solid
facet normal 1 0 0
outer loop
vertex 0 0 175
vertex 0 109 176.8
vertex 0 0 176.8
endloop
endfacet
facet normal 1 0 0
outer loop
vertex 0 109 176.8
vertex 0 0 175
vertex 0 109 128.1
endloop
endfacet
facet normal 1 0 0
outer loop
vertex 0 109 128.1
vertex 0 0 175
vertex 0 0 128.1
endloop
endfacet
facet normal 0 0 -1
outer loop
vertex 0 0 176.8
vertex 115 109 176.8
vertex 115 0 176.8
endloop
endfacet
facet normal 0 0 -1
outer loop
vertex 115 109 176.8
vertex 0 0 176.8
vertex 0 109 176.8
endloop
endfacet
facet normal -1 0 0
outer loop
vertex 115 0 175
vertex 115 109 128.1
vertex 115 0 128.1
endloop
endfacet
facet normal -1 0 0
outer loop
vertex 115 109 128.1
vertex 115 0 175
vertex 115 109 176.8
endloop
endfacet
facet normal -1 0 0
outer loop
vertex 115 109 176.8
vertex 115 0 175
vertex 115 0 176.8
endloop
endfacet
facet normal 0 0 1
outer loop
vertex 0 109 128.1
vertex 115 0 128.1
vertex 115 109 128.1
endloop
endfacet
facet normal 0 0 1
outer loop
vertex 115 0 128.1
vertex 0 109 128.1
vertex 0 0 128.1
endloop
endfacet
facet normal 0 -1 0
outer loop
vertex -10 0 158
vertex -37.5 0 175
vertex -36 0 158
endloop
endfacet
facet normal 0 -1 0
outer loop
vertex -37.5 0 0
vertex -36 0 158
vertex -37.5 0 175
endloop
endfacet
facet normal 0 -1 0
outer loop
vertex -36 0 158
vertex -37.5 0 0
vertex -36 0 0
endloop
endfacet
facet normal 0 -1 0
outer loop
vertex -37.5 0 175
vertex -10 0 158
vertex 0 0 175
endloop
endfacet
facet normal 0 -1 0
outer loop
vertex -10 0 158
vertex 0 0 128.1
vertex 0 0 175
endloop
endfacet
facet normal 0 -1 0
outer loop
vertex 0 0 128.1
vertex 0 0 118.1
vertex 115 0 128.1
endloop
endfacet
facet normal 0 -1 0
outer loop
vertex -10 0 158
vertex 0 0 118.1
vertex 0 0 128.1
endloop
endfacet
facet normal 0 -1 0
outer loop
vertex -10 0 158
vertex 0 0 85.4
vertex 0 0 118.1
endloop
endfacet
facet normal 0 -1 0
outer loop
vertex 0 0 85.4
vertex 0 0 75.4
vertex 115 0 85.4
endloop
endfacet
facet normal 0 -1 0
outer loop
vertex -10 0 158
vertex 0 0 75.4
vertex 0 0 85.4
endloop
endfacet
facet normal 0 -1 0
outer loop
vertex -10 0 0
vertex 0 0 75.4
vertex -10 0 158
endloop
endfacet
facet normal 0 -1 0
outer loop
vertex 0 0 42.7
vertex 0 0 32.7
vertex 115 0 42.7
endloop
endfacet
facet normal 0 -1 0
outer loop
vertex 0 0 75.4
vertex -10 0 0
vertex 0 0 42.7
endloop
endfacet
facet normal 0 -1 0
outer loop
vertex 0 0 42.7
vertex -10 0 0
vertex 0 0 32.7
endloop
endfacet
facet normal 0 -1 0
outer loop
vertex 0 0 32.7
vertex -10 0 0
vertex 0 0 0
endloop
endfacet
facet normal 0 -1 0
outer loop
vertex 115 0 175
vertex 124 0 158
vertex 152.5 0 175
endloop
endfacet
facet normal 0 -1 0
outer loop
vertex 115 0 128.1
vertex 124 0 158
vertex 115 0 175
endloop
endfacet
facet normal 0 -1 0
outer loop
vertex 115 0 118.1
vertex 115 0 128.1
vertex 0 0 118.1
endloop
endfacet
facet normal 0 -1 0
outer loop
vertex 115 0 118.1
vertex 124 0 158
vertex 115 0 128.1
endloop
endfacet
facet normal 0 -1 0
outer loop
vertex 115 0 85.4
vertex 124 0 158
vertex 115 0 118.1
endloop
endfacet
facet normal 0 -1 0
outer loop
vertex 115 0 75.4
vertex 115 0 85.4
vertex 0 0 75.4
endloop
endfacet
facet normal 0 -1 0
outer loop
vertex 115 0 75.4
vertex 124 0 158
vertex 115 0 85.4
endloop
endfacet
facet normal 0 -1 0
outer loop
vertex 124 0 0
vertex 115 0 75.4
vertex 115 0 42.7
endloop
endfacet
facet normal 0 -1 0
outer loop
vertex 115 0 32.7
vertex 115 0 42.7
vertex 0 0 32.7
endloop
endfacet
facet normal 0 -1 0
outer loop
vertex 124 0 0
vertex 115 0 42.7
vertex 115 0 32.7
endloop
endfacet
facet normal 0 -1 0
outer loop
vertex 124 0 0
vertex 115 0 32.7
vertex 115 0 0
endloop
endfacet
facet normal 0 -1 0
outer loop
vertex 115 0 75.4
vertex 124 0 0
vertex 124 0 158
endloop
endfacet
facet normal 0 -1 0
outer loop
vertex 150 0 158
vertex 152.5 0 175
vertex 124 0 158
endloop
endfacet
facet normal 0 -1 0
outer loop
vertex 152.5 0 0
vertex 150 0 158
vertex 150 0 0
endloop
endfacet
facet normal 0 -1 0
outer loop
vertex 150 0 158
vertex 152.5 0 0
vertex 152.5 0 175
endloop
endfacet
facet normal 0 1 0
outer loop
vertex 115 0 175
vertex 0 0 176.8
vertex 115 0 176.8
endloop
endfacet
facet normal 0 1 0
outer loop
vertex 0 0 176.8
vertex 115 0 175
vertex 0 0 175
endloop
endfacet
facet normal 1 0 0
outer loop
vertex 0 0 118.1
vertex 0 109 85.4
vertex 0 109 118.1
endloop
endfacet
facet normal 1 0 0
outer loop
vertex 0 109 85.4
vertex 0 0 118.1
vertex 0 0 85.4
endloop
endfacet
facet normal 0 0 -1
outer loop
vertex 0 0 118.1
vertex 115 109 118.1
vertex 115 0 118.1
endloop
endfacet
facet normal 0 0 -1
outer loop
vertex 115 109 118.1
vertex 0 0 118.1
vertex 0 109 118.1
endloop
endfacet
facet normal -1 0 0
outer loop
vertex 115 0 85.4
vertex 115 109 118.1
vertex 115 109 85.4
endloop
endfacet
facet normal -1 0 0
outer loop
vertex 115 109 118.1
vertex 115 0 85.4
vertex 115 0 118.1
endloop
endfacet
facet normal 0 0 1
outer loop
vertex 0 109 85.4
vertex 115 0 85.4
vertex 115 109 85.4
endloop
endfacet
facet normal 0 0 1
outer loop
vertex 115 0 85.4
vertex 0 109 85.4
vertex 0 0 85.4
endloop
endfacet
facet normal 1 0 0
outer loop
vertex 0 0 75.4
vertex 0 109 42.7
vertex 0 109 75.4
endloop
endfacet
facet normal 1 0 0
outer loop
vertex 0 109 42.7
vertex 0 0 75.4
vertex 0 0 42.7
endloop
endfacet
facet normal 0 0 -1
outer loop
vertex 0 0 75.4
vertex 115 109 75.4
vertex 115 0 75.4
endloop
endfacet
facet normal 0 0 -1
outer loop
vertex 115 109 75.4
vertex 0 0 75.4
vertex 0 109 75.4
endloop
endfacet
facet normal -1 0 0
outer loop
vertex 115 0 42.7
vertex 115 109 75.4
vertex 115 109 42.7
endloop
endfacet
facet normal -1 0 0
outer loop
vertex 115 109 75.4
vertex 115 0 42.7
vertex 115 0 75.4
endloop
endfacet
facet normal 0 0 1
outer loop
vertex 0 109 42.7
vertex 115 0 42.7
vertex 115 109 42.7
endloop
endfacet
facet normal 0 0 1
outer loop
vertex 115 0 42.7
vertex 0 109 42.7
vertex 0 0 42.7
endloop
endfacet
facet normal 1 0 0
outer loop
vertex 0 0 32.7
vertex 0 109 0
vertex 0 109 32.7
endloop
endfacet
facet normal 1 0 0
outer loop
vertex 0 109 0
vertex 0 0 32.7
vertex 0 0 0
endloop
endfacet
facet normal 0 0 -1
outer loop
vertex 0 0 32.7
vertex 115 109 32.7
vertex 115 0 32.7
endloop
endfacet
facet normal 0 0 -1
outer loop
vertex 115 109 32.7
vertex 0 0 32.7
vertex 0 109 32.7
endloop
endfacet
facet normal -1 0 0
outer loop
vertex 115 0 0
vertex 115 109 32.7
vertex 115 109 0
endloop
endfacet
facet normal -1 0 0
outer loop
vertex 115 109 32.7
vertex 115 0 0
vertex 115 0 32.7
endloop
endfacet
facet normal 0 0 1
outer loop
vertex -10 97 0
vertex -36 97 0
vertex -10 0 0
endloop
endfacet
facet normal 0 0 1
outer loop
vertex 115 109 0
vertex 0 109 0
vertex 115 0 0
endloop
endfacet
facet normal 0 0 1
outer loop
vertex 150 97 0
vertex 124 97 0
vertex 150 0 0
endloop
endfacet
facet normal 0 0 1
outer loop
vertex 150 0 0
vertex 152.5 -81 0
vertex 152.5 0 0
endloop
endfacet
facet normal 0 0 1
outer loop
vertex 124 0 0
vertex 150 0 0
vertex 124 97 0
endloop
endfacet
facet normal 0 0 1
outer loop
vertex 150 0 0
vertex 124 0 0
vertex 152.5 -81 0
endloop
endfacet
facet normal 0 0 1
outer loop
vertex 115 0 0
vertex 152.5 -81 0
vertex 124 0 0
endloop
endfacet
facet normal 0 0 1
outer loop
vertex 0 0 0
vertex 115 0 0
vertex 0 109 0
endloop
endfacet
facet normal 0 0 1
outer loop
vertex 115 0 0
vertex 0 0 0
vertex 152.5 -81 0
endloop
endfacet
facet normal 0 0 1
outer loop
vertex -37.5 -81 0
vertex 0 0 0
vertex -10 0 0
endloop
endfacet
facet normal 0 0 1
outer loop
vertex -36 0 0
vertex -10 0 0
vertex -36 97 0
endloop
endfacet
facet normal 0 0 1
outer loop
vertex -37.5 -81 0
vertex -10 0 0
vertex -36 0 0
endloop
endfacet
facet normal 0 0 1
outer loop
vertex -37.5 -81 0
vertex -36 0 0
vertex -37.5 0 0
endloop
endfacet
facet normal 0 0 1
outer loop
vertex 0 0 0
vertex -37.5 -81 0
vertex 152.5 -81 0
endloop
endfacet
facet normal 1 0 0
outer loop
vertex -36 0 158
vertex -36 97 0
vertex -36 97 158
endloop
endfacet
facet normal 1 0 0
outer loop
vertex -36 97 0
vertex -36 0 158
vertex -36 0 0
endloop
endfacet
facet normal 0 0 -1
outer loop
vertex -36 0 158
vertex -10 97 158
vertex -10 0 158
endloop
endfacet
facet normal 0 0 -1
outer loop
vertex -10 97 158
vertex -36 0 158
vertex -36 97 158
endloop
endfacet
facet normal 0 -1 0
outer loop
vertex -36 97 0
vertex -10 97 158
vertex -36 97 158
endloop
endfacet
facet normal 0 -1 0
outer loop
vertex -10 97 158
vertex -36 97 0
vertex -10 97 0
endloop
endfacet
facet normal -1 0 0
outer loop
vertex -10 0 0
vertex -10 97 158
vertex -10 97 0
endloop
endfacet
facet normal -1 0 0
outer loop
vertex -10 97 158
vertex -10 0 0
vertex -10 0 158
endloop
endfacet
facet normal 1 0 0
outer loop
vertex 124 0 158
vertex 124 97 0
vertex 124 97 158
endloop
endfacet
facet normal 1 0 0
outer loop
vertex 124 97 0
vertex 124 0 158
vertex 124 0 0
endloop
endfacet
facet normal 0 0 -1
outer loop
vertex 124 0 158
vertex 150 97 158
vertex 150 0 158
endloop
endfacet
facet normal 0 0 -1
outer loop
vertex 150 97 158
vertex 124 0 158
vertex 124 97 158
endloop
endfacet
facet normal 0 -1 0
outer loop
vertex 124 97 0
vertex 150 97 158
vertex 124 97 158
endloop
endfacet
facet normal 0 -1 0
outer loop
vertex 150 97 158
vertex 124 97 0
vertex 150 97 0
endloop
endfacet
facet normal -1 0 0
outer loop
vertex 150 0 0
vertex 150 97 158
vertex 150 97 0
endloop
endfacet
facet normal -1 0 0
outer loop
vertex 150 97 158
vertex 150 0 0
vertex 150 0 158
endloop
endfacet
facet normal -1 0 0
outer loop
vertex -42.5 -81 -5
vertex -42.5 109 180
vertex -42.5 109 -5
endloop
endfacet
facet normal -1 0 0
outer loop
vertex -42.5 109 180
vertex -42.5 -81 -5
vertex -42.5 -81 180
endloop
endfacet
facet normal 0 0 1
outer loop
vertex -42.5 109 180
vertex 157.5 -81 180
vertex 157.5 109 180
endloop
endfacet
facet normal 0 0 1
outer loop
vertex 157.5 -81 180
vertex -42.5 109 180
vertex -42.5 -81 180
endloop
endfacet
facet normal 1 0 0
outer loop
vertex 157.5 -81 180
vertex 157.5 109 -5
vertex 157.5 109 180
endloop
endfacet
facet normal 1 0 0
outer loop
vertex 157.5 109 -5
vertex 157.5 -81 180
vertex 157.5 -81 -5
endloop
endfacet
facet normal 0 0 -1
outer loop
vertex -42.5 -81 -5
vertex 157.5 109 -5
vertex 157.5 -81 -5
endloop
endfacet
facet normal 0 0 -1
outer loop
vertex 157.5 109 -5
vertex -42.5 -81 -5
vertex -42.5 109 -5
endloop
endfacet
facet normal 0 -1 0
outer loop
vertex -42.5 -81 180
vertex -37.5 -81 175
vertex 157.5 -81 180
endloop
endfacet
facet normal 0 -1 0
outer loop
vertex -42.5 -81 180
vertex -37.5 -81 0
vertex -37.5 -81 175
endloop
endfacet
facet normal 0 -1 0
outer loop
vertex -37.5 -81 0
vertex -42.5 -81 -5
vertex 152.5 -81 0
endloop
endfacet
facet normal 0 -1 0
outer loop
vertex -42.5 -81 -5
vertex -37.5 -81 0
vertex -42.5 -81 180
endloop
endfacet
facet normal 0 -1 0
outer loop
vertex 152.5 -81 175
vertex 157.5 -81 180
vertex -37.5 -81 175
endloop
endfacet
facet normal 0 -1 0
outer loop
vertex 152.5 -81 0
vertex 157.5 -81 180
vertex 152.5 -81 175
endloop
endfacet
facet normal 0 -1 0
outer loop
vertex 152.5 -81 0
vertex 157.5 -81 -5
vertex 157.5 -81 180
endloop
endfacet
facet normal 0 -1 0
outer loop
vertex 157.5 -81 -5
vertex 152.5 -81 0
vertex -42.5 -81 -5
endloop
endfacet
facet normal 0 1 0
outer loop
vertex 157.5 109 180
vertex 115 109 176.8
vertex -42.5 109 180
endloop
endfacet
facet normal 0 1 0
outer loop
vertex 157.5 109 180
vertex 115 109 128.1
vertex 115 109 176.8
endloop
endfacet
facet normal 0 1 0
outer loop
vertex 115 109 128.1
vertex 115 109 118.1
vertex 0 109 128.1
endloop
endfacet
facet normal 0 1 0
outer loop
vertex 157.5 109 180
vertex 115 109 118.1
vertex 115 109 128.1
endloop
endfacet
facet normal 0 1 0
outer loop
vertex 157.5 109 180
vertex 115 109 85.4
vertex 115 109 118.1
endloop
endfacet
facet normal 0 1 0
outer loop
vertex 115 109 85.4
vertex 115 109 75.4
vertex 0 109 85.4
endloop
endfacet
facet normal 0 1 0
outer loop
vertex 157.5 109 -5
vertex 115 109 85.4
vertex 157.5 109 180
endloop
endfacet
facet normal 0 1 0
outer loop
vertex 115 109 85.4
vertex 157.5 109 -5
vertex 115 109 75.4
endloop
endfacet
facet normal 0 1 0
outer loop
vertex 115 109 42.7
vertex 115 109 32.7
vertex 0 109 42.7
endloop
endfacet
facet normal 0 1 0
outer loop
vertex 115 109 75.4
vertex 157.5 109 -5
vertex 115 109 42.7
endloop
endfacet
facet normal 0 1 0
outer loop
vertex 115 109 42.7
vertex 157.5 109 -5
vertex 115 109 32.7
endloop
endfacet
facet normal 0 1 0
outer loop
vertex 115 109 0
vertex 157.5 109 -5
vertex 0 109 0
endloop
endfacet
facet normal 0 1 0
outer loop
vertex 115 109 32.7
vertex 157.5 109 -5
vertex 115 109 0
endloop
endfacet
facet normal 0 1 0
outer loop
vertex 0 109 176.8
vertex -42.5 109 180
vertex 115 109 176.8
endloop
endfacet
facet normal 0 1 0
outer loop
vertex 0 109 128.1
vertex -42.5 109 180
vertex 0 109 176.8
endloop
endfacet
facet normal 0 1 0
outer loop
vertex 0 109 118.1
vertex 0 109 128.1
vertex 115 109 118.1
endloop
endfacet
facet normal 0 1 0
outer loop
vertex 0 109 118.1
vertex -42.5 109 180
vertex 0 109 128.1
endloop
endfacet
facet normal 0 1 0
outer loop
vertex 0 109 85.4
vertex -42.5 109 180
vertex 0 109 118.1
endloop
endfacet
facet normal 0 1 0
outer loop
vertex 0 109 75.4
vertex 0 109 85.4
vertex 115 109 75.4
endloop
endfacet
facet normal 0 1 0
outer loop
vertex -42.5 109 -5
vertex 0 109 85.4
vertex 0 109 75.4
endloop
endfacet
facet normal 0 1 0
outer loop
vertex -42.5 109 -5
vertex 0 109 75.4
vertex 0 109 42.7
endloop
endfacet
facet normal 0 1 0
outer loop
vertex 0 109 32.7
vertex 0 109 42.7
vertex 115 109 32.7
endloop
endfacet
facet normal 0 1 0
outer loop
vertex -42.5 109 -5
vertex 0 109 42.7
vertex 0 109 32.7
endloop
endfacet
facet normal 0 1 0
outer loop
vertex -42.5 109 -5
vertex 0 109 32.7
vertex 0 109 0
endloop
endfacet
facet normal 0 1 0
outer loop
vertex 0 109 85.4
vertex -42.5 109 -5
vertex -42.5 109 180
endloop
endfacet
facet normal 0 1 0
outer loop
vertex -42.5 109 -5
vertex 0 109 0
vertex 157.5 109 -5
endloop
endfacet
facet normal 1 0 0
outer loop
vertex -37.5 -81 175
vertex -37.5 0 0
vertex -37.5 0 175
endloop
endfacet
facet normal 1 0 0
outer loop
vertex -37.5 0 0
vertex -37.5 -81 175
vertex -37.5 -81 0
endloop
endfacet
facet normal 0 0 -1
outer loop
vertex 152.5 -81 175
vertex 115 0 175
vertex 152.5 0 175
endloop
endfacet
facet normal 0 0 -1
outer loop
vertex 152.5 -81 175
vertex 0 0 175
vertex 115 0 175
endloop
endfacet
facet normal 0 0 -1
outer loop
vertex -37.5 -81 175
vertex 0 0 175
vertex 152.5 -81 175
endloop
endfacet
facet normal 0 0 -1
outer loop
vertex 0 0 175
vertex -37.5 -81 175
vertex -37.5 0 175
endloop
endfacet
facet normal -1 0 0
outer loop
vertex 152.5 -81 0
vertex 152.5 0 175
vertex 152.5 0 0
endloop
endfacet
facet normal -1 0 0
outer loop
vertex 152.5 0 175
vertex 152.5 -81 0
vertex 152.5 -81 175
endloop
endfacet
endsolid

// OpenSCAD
module nuc_small()
{
        cube([115,111,32.7]);
}


module nuc_large()
{
        cube([115,111,48.7]);
}

module switch()
{
      cube([158,102,26]);
}

module the_stuff()
{
translate([0,0,32.7+10+32.7+10+32.7+10]) nuc_large();
translate([0,0,32.7+10+32.7+10]) nuc_small();
translate([0,0,32.7+10]) nuc_small();
translate([0,0,0]) nuc_small();
translate([-10,-5,0]) rotate([0,-90,0]) switch();
translate([150,-5,0]) rotate([0,-90,0]) switch();
}

module thecrate()
{
    difference(){
       translate([-42.5,-81,-5]) cube([200,190,185]);
       the_stuff();
        %the_stuff();
       translate([-42.5+5,-95,0]) cube([190,95,175]);
       }
}

thecrate();
//the_stuff();
